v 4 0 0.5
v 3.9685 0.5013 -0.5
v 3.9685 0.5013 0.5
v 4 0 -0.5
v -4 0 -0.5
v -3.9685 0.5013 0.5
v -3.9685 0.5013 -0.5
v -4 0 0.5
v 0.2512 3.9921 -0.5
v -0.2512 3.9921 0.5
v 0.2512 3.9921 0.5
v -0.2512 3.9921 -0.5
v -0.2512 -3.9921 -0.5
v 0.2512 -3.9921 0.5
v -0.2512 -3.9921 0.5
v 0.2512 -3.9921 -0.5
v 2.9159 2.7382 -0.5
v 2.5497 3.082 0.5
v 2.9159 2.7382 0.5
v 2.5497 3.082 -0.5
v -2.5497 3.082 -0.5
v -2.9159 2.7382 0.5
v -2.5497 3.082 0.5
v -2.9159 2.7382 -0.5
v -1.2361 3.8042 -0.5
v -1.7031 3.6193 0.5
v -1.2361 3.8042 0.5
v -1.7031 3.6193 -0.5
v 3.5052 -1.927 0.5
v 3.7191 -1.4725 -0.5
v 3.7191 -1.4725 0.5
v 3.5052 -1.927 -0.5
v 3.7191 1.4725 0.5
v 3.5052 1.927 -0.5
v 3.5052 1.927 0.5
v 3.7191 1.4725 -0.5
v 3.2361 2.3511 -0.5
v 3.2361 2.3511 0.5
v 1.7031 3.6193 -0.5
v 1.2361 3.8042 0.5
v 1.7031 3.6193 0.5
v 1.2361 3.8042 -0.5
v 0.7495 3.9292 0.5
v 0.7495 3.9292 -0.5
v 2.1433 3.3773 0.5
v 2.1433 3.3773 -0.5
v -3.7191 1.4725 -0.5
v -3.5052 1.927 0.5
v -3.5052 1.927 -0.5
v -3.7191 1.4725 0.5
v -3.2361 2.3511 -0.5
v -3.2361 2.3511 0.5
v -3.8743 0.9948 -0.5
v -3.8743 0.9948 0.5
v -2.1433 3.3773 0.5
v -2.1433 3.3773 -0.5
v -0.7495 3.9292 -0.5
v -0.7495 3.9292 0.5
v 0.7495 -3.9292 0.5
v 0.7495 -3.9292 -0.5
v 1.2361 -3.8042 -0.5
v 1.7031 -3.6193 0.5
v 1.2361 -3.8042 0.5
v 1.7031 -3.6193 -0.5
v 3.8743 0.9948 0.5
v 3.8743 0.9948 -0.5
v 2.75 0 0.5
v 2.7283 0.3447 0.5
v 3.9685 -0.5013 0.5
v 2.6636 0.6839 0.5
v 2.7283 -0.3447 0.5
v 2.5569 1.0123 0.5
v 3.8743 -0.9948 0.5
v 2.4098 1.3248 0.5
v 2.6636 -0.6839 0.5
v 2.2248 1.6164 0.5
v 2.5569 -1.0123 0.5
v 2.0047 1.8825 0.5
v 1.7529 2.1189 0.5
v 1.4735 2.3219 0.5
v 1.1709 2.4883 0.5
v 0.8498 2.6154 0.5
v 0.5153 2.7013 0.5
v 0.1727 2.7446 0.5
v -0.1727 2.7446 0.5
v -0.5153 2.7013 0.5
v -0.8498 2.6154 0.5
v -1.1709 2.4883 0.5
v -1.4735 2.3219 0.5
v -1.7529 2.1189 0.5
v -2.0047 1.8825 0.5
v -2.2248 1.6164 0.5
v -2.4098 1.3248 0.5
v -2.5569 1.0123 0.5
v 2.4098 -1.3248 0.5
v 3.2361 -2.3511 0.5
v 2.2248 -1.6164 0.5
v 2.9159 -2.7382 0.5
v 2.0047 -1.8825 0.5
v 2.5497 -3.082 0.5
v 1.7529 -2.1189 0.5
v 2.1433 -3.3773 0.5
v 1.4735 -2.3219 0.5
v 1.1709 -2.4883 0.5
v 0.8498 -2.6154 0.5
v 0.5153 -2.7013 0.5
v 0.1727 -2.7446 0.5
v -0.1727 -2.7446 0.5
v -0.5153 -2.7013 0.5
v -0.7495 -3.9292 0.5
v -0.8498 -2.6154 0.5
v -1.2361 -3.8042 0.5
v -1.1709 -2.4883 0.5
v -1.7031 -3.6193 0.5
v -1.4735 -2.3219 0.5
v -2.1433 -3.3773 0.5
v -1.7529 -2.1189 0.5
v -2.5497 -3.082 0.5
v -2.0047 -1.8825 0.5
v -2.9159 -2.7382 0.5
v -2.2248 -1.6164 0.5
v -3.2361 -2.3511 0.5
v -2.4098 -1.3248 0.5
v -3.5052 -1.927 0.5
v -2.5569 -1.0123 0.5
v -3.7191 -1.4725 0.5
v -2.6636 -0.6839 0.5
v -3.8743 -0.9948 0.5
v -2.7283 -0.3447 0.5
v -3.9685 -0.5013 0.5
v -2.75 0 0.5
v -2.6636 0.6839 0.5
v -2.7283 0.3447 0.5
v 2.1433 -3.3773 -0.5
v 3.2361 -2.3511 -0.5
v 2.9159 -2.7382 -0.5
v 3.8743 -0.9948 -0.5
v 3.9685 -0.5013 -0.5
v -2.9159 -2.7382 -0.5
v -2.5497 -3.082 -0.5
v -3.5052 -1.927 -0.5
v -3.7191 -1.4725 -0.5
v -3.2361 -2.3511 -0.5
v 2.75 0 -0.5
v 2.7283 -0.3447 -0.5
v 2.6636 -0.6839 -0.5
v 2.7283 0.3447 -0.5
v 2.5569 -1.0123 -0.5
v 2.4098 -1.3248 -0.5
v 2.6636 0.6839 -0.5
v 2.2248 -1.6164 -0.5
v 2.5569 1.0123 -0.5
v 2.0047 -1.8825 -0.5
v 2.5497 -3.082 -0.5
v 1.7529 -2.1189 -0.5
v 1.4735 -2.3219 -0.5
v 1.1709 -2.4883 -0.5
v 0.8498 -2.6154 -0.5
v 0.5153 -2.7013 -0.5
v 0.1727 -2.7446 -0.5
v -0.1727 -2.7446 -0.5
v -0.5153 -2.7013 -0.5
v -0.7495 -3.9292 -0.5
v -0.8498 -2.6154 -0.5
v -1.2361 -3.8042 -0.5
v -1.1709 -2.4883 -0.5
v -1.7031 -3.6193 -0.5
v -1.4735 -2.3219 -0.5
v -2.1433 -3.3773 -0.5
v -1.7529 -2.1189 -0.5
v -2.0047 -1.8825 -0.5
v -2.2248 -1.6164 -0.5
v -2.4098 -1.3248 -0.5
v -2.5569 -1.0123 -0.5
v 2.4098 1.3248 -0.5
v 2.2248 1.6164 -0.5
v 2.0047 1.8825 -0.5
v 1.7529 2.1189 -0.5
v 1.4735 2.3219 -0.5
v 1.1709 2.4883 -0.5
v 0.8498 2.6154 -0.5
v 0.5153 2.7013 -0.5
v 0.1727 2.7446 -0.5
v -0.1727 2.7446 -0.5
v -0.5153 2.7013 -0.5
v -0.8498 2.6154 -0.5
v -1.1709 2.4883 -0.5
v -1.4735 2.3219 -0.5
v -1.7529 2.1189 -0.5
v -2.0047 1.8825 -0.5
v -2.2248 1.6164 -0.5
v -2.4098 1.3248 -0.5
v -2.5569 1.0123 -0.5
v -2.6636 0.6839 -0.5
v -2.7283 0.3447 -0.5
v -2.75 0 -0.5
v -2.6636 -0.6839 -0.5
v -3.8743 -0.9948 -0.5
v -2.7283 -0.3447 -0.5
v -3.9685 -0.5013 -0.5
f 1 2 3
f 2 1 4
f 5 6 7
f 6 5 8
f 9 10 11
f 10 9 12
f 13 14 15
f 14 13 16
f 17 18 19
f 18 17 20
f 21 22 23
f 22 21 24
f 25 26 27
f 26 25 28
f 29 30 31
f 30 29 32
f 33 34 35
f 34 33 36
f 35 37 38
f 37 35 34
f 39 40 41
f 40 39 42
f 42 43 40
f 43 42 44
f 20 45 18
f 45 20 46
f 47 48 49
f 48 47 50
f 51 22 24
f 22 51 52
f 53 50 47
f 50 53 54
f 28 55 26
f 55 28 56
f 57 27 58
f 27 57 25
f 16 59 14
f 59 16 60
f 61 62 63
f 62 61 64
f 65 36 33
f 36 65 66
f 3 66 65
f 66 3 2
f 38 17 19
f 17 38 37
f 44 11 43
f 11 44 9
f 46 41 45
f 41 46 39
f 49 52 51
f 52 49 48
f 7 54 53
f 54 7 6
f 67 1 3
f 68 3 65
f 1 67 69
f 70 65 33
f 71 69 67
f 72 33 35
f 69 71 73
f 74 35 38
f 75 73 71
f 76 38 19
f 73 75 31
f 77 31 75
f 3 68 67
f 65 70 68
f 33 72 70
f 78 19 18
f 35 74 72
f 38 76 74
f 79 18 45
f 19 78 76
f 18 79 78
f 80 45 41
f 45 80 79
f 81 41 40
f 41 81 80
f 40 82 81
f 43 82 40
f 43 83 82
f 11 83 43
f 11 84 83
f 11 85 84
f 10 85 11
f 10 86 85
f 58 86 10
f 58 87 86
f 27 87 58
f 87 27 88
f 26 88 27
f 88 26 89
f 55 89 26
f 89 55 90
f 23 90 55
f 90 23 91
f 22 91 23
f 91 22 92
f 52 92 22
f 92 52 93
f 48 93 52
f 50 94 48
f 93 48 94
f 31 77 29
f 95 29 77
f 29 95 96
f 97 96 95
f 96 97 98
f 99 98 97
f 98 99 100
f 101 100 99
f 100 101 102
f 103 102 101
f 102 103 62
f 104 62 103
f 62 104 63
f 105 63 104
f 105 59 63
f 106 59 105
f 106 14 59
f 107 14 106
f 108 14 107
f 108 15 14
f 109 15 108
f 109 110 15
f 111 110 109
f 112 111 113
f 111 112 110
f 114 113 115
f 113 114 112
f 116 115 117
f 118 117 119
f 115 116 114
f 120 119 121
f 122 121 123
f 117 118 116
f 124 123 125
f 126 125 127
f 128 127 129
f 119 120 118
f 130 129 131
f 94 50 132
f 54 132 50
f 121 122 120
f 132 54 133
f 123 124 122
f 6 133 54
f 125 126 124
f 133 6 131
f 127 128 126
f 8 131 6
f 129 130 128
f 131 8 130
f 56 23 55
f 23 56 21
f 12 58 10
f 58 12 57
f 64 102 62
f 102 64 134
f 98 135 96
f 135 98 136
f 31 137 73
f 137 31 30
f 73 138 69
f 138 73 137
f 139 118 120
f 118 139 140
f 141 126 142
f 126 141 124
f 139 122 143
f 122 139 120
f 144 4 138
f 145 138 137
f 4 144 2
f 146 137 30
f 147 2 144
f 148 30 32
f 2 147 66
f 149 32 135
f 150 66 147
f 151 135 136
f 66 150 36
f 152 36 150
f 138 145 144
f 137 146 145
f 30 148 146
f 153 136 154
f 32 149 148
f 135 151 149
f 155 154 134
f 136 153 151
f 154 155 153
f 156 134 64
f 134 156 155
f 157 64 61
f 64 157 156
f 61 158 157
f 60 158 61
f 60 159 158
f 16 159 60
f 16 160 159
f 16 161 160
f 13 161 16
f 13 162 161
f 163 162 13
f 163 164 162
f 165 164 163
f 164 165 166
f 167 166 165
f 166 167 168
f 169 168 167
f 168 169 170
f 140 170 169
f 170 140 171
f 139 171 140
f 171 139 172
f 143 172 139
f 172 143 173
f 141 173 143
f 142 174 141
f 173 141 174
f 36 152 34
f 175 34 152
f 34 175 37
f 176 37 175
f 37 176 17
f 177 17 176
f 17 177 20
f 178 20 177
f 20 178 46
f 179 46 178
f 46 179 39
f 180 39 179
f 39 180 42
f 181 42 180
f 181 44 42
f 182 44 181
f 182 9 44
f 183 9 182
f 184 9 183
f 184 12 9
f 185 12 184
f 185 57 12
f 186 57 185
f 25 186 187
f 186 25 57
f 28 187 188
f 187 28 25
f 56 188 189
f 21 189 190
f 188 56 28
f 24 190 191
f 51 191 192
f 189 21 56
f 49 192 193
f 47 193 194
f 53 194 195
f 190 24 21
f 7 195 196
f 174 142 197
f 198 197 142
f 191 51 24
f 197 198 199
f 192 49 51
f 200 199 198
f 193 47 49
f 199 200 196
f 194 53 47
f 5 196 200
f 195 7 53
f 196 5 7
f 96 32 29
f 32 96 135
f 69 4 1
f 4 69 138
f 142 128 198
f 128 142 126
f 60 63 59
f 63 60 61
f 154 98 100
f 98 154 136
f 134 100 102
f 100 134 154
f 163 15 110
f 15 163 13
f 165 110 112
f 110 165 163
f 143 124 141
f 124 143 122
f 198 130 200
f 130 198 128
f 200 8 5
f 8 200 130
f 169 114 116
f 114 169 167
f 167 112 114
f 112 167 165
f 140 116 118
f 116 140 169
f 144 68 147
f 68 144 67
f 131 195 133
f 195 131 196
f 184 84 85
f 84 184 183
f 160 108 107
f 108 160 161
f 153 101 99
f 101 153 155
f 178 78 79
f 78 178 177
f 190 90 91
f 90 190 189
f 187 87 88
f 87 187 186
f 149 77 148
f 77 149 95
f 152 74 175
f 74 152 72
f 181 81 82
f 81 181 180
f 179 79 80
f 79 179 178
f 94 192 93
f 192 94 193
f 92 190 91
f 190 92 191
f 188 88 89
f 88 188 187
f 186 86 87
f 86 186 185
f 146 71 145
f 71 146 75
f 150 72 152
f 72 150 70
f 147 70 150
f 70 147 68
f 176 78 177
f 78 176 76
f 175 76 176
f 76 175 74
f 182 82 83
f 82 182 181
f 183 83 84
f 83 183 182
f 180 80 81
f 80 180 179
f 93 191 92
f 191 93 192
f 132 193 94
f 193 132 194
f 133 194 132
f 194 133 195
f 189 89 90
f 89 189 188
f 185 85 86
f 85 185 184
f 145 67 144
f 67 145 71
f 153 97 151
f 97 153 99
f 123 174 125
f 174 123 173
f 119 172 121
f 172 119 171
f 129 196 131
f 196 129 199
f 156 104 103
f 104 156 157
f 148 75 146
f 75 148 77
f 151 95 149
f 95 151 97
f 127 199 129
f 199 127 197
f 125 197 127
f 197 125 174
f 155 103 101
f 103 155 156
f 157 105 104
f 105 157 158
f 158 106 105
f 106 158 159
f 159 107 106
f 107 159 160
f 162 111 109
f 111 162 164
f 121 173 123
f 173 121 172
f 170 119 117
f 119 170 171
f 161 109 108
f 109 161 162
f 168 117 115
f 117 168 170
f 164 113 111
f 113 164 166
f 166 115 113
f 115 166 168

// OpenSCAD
$fn = 50;


difference() {
	union() {
		translate(v = [0, 0, -0.5000000000]) {
			cylinder(h = 1, r = 4.0000000000);
		}
	}
	union() {
		translate(v = [0, 0, -100.0000000000]) {
			cylinder(h = 200, r = 2.7500000000);
		}
	}
}
